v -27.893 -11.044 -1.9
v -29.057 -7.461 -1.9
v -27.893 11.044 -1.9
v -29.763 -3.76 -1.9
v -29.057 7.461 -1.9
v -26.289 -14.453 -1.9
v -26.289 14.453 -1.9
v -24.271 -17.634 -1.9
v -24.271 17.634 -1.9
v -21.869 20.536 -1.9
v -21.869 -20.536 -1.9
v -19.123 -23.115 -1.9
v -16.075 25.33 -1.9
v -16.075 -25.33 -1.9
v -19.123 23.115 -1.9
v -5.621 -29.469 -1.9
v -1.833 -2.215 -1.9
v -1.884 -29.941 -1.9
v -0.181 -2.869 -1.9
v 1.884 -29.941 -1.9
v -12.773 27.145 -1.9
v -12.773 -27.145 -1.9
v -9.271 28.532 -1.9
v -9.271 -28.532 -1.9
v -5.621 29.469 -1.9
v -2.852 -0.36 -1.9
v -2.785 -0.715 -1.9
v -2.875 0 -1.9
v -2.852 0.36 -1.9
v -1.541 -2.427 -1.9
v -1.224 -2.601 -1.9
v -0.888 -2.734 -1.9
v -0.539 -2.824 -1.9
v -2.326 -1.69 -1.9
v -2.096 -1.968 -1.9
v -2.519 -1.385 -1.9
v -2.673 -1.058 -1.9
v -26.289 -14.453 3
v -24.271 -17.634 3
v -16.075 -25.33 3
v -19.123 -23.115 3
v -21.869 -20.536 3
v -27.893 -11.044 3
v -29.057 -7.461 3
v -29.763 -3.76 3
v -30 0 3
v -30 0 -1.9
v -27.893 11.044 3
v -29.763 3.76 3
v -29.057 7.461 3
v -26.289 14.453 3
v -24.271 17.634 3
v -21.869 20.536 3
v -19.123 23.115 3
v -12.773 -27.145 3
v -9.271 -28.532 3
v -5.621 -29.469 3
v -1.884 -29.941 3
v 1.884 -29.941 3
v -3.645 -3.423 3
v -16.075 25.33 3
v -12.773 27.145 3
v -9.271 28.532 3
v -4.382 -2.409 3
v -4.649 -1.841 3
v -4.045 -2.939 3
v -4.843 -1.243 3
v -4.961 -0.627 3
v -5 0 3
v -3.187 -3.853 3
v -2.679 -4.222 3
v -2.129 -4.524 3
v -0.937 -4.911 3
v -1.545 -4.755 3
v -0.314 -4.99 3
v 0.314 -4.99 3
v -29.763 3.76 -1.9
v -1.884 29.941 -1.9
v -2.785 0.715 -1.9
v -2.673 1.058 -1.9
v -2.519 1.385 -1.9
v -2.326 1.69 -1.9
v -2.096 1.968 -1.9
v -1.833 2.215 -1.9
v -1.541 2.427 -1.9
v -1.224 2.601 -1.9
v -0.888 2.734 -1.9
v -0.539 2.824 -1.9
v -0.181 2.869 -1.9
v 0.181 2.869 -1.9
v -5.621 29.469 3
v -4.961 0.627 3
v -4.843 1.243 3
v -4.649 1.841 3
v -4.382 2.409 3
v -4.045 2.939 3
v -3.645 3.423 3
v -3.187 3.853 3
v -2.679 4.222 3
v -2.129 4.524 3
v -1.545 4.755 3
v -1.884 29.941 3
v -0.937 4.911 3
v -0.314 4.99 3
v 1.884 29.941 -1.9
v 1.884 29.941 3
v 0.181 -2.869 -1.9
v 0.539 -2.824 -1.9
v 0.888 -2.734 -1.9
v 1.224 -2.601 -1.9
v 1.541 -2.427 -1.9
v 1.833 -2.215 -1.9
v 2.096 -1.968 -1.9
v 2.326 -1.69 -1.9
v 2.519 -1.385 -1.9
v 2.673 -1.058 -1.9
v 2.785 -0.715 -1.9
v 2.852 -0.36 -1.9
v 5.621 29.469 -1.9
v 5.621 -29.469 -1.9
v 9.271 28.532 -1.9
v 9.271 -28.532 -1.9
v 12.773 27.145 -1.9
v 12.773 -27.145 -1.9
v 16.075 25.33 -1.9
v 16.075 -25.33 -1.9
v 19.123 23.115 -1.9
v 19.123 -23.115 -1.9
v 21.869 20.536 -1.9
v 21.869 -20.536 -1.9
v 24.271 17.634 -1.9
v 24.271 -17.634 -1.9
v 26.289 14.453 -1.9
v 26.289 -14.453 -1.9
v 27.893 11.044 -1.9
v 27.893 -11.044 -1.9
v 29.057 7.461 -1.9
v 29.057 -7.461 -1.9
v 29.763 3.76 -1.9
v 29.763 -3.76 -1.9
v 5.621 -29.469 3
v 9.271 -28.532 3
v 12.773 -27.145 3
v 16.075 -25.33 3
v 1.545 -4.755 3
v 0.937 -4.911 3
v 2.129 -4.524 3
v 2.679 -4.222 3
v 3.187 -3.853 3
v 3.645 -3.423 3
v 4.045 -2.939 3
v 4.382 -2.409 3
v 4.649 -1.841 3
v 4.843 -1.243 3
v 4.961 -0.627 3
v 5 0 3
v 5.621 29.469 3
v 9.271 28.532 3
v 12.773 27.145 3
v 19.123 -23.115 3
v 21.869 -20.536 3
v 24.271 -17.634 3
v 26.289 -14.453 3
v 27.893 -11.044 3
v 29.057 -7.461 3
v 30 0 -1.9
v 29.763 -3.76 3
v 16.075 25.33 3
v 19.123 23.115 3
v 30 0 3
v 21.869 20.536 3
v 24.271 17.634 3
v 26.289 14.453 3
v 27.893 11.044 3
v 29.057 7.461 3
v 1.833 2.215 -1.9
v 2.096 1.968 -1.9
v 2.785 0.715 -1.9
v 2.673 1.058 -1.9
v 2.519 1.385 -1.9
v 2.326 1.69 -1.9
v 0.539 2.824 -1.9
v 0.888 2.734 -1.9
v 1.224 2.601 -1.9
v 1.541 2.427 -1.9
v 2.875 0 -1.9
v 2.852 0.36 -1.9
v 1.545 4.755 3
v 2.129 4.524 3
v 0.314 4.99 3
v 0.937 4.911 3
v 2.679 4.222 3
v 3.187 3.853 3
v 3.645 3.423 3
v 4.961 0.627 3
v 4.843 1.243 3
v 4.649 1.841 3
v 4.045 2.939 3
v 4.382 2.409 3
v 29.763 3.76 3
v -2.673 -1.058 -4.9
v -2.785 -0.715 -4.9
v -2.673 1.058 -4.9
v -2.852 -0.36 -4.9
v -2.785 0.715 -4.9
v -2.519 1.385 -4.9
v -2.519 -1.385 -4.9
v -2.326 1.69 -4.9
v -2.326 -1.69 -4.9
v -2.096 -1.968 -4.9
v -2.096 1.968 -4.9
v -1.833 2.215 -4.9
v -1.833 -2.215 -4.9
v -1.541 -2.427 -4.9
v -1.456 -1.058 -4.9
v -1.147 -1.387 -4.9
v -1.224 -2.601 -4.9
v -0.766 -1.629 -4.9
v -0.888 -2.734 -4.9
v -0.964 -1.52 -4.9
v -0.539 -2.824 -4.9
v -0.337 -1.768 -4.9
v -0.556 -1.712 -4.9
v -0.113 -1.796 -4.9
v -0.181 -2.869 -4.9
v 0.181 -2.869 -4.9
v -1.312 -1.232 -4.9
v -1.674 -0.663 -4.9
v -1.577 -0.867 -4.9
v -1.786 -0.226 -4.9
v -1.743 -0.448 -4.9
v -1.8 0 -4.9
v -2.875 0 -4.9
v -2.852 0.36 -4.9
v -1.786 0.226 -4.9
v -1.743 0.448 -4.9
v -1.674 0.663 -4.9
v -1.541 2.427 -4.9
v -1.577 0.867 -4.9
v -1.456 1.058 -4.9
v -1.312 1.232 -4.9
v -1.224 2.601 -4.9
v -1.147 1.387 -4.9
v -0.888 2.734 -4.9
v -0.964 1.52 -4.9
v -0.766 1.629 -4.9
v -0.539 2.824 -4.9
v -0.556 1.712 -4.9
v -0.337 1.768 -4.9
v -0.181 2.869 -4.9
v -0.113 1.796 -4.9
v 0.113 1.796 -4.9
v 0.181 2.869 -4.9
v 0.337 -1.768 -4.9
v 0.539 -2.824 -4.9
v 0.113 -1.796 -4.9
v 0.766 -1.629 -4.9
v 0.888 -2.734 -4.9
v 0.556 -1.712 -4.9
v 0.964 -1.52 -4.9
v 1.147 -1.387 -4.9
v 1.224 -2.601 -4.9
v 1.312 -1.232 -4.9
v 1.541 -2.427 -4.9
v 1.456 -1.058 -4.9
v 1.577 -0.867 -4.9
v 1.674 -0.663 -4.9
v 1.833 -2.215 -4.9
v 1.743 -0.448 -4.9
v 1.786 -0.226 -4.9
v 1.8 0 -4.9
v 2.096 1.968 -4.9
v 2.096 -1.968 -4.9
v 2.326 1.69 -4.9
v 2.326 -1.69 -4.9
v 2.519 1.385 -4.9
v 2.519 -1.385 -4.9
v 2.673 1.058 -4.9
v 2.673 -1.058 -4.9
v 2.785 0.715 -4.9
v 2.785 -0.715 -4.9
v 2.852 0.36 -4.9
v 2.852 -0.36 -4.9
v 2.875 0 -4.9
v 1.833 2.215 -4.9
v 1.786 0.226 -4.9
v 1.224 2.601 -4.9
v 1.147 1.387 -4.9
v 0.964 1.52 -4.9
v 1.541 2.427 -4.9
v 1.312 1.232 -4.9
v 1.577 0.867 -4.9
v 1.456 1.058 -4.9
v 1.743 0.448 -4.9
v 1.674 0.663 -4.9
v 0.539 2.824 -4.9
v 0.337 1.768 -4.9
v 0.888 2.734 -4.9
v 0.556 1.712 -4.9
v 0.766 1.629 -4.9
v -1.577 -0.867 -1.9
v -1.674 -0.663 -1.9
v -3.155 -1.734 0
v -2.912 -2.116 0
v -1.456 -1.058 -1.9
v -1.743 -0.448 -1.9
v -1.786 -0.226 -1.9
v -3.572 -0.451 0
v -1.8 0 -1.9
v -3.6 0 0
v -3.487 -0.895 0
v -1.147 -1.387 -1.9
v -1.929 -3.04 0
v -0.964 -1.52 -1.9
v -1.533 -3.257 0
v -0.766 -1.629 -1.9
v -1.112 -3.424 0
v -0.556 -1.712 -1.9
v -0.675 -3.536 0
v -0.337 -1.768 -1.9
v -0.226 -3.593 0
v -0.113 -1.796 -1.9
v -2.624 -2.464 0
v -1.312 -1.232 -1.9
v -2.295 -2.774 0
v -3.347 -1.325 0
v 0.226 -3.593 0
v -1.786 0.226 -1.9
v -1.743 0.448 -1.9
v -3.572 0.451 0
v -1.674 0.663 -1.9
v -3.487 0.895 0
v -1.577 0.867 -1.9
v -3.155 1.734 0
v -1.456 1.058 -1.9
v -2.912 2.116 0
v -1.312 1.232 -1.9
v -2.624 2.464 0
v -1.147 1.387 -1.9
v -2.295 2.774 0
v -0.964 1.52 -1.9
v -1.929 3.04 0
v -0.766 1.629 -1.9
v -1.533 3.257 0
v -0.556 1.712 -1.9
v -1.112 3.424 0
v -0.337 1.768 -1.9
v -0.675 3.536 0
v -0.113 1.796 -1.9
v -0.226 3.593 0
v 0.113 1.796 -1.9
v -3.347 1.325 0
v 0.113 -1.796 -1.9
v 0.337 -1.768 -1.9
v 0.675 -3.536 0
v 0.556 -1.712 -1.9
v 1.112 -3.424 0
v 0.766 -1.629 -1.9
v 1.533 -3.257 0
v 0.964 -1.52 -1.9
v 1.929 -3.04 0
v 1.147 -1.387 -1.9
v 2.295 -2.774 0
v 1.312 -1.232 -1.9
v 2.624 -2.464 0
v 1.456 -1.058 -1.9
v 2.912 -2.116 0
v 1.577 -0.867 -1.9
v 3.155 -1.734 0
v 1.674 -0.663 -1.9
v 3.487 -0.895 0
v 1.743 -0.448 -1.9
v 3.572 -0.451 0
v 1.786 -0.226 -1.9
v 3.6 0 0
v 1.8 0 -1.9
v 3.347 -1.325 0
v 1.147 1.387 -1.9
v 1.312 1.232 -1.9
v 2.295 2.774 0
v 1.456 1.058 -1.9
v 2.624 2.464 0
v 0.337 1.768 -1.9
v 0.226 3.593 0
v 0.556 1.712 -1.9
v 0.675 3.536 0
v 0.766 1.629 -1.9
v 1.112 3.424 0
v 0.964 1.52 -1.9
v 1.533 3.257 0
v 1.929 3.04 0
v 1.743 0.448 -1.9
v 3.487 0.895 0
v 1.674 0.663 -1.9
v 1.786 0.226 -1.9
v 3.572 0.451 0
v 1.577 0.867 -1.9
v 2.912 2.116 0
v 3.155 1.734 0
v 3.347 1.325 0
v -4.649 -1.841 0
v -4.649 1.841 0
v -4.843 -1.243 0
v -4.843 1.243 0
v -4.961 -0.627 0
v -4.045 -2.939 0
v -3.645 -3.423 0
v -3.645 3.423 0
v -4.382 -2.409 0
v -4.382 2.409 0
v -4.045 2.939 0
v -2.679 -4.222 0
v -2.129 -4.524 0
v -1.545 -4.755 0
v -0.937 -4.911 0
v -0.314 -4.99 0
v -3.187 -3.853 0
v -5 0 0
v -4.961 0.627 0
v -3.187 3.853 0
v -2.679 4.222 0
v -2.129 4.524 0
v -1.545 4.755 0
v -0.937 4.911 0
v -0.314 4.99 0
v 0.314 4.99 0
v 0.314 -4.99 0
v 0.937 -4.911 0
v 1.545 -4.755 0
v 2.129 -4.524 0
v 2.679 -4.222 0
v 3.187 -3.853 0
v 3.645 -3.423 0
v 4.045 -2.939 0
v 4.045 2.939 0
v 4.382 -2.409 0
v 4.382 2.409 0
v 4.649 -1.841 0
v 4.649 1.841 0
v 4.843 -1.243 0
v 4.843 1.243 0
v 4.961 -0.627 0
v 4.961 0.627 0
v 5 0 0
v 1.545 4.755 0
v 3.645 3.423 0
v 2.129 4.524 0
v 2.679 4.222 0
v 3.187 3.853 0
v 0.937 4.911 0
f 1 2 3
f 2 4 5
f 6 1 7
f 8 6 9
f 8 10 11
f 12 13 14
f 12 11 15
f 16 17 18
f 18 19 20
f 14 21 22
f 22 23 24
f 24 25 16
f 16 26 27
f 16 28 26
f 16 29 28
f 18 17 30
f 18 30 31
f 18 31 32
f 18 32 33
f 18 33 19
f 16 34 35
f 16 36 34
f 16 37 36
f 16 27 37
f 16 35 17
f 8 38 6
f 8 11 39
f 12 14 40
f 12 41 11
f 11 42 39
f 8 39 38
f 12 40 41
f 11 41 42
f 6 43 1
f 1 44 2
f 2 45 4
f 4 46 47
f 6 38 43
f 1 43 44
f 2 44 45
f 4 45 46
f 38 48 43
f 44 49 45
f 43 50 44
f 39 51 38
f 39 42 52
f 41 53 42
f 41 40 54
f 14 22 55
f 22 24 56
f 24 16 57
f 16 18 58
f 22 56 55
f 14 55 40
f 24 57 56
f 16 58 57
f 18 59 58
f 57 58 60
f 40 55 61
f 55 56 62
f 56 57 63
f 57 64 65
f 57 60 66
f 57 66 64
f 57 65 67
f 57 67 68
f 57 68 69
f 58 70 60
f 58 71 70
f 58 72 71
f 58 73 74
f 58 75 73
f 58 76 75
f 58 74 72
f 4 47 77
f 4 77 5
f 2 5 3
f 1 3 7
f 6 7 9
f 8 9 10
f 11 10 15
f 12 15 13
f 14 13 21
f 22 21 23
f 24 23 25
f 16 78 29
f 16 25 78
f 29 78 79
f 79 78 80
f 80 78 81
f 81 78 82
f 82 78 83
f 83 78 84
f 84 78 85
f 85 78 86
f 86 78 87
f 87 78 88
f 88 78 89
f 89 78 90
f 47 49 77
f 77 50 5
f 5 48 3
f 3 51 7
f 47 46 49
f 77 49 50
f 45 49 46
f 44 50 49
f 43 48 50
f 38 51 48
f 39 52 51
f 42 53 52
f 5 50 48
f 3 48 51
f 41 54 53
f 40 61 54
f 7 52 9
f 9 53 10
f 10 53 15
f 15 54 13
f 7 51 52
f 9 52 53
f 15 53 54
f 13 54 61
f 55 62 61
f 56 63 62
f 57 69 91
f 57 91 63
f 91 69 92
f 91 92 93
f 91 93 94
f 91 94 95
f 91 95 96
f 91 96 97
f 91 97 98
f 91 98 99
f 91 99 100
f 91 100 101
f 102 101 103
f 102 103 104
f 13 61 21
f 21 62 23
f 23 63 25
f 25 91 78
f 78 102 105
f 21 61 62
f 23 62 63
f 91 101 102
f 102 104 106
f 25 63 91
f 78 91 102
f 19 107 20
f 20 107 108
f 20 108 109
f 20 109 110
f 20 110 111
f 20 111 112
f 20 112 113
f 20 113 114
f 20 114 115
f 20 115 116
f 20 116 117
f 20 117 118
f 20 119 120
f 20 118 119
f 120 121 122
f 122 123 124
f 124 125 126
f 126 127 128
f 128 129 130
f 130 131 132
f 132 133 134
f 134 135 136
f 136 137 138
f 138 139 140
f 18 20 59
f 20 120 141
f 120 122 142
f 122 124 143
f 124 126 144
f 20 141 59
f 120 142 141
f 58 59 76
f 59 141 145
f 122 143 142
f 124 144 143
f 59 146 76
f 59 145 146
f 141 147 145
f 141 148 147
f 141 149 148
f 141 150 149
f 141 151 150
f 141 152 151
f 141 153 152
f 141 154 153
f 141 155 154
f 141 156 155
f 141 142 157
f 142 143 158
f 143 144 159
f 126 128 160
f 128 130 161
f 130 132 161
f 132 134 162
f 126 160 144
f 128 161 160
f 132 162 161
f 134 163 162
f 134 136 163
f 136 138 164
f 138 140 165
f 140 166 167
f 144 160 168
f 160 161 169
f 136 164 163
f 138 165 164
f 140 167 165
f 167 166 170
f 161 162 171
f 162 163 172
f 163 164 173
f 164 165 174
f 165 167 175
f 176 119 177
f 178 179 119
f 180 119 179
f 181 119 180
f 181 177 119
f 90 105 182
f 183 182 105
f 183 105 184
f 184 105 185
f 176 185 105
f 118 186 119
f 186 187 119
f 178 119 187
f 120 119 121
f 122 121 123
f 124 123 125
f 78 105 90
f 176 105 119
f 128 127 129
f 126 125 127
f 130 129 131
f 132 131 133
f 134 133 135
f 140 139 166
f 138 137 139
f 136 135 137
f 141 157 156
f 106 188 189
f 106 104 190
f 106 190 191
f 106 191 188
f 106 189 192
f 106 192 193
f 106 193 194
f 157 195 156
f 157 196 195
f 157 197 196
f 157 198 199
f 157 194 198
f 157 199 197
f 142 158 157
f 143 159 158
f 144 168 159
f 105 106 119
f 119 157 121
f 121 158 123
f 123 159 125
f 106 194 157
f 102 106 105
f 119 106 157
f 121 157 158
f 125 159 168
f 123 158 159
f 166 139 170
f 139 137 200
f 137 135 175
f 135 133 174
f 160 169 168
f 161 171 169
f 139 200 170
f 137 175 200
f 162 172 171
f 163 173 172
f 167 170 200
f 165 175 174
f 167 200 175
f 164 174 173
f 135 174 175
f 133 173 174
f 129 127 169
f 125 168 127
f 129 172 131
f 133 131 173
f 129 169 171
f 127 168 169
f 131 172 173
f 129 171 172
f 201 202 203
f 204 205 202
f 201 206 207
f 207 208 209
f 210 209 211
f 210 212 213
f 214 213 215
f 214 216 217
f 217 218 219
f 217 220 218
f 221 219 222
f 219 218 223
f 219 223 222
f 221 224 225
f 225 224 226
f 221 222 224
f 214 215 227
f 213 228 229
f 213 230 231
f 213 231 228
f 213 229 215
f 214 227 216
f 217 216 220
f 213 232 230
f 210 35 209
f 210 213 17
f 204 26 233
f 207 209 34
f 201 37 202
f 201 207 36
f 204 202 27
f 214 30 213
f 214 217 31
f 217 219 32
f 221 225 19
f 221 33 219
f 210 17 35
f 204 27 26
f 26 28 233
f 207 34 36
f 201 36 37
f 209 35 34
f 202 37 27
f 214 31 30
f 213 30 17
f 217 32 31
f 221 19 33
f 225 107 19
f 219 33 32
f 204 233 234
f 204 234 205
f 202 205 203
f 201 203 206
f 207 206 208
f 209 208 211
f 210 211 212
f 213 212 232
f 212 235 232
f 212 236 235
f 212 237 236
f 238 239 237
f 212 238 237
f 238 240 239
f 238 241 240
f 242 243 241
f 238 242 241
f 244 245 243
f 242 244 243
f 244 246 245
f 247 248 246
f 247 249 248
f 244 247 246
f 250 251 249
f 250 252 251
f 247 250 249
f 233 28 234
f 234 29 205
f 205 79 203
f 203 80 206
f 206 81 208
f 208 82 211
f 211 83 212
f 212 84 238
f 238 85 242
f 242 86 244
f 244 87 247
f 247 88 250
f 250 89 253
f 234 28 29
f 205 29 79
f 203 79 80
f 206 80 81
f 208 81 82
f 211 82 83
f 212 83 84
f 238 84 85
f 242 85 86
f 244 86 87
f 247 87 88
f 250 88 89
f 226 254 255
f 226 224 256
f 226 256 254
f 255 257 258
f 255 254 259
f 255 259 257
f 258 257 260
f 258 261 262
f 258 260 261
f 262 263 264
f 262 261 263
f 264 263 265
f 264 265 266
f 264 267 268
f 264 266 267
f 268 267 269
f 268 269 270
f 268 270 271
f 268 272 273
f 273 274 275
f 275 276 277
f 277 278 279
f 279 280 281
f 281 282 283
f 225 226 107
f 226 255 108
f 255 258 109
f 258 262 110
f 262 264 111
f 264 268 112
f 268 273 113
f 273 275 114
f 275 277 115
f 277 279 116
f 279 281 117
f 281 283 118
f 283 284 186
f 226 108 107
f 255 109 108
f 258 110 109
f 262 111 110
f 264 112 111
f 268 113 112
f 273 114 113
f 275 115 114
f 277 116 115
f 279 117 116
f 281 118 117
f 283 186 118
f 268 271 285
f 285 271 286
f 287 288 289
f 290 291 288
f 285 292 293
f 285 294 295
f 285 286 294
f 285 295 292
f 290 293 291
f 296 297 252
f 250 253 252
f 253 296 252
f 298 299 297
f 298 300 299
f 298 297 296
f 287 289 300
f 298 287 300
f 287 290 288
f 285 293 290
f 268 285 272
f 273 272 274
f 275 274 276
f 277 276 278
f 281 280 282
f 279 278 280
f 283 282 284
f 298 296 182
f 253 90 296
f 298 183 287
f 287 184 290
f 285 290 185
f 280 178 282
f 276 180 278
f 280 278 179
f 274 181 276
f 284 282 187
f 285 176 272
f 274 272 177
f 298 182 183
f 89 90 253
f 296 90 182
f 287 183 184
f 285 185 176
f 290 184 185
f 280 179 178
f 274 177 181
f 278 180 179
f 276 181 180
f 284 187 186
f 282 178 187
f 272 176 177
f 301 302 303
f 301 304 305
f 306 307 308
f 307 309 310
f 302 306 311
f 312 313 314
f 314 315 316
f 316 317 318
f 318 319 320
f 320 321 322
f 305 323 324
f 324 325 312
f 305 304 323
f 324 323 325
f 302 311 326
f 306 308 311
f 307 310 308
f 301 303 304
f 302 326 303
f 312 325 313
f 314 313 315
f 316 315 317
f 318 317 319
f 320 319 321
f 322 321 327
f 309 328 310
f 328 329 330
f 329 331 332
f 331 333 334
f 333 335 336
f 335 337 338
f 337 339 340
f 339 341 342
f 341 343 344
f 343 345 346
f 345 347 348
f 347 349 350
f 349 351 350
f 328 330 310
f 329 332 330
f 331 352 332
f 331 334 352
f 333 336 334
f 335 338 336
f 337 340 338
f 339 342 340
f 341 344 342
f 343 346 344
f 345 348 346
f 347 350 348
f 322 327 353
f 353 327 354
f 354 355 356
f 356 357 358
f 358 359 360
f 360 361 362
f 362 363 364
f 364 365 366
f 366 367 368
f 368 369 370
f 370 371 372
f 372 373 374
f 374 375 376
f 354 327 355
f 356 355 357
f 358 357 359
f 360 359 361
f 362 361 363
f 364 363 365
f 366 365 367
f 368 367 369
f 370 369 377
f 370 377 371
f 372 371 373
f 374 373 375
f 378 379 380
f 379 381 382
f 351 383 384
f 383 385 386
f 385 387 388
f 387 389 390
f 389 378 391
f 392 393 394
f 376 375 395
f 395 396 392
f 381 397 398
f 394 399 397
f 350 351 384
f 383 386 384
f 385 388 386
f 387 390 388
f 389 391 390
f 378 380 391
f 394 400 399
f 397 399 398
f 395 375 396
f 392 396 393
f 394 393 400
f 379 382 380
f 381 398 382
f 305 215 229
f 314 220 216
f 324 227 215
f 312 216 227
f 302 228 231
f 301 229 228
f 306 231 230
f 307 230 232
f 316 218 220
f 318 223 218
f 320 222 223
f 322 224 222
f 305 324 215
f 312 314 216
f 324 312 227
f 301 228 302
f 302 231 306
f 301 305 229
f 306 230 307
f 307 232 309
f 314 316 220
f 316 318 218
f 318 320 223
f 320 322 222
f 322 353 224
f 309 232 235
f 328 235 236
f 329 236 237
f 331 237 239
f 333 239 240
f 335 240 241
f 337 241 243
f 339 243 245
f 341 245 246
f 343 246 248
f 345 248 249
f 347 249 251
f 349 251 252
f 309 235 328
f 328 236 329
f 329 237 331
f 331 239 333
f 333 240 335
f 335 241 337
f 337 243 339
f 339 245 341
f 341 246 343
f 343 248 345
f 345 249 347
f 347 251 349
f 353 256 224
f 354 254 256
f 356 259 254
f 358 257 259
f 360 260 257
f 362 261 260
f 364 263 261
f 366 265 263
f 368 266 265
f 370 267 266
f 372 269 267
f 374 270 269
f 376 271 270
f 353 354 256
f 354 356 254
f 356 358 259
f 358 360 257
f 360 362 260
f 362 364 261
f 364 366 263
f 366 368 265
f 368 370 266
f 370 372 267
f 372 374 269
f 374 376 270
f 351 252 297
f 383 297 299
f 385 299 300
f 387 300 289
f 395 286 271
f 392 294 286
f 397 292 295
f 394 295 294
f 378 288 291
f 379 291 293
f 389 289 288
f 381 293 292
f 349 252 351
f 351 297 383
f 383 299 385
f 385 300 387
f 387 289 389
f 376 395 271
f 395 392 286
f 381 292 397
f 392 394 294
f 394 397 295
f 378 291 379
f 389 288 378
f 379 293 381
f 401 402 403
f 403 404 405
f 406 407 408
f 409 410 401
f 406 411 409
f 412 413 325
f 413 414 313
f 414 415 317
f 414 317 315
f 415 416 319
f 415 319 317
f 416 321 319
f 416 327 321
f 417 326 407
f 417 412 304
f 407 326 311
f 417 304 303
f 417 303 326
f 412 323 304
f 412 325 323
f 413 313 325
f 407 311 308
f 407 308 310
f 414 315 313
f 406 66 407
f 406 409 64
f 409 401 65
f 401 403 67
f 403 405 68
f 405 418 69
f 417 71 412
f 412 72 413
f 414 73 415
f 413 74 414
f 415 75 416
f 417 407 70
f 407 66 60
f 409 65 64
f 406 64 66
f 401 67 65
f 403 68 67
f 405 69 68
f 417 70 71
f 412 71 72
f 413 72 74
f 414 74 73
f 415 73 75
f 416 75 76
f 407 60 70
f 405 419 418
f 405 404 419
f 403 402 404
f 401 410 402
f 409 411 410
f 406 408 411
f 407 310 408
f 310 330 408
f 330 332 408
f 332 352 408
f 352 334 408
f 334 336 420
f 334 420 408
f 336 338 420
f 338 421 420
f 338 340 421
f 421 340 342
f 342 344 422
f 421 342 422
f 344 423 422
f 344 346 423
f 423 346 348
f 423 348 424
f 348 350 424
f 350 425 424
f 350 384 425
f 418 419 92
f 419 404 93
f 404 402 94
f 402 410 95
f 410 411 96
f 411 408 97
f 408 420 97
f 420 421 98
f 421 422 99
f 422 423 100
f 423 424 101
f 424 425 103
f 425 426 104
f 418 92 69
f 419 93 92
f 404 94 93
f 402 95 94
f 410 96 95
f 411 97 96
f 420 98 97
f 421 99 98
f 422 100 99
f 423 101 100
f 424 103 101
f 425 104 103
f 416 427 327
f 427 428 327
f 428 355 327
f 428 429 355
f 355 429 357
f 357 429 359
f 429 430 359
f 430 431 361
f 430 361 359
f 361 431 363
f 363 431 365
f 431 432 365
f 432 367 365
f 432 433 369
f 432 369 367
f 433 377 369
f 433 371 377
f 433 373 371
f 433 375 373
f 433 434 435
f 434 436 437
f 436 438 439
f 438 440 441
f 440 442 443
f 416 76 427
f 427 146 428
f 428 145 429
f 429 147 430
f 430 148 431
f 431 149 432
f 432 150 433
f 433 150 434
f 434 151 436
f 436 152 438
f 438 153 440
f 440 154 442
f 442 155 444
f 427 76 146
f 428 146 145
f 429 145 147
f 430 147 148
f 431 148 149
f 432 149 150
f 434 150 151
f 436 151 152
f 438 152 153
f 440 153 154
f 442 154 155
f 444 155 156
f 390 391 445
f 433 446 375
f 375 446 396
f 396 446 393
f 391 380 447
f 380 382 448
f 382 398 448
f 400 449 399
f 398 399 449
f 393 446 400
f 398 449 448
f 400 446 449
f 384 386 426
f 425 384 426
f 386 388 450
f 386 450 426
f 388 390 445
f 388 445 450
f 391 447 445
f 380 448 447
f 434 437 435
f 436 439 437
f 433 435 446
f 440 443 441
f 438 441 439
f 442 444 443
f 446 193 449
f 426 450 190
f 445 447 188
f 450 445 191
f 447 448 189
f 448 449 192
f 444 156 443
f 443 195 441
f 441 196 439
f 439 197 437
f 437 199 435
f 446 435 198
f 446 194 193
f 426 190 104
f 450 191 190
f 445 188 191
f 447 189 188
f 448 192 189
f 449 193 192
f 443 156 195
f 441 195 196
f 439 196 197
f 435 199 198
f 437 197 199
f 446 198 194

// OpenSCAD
$fn = 50;


difference() {
	union() {
		translate(v = [0, 0, -1.9000000000]) {
			cylinder(h = 4.9000000000, r = 30.0000000000);
		}
		#translate(v = [0, 0, -4.9000000000]) {
			cylinder(h = 4.9000000000, r = 2.8750000000);
		}
	}
	union() {
		translate(v = [0, 0, 0]) {
			rotate(a = [0, 0, 0]) {
				difference() {
					union() {
						translate(v = [0, 0, -4.9000000000]) {
							cylinder(h = 4.9000000000, r = 1.5000000000);
						}
						translate(v = [0, 0, -1.9000000000]) {
							cylinder(h = 1.9000000000, r1 = 1.8000000000, r2 = 3.6000000000);
						}
						translate(v = [0, 0, -4.9000000000]) {
							cylinder(h = 4.9000000000, r = 1.8000000000);
						}
						translate(v = [0, 0, -4.9000000000]) {
							cylinder(h = 4.9000000000, r = 1.5000000000);
						}
					}
					union();
				}
			}
		}
		#cylinder(h = 3, r = 5.0000000000);
	}
}
